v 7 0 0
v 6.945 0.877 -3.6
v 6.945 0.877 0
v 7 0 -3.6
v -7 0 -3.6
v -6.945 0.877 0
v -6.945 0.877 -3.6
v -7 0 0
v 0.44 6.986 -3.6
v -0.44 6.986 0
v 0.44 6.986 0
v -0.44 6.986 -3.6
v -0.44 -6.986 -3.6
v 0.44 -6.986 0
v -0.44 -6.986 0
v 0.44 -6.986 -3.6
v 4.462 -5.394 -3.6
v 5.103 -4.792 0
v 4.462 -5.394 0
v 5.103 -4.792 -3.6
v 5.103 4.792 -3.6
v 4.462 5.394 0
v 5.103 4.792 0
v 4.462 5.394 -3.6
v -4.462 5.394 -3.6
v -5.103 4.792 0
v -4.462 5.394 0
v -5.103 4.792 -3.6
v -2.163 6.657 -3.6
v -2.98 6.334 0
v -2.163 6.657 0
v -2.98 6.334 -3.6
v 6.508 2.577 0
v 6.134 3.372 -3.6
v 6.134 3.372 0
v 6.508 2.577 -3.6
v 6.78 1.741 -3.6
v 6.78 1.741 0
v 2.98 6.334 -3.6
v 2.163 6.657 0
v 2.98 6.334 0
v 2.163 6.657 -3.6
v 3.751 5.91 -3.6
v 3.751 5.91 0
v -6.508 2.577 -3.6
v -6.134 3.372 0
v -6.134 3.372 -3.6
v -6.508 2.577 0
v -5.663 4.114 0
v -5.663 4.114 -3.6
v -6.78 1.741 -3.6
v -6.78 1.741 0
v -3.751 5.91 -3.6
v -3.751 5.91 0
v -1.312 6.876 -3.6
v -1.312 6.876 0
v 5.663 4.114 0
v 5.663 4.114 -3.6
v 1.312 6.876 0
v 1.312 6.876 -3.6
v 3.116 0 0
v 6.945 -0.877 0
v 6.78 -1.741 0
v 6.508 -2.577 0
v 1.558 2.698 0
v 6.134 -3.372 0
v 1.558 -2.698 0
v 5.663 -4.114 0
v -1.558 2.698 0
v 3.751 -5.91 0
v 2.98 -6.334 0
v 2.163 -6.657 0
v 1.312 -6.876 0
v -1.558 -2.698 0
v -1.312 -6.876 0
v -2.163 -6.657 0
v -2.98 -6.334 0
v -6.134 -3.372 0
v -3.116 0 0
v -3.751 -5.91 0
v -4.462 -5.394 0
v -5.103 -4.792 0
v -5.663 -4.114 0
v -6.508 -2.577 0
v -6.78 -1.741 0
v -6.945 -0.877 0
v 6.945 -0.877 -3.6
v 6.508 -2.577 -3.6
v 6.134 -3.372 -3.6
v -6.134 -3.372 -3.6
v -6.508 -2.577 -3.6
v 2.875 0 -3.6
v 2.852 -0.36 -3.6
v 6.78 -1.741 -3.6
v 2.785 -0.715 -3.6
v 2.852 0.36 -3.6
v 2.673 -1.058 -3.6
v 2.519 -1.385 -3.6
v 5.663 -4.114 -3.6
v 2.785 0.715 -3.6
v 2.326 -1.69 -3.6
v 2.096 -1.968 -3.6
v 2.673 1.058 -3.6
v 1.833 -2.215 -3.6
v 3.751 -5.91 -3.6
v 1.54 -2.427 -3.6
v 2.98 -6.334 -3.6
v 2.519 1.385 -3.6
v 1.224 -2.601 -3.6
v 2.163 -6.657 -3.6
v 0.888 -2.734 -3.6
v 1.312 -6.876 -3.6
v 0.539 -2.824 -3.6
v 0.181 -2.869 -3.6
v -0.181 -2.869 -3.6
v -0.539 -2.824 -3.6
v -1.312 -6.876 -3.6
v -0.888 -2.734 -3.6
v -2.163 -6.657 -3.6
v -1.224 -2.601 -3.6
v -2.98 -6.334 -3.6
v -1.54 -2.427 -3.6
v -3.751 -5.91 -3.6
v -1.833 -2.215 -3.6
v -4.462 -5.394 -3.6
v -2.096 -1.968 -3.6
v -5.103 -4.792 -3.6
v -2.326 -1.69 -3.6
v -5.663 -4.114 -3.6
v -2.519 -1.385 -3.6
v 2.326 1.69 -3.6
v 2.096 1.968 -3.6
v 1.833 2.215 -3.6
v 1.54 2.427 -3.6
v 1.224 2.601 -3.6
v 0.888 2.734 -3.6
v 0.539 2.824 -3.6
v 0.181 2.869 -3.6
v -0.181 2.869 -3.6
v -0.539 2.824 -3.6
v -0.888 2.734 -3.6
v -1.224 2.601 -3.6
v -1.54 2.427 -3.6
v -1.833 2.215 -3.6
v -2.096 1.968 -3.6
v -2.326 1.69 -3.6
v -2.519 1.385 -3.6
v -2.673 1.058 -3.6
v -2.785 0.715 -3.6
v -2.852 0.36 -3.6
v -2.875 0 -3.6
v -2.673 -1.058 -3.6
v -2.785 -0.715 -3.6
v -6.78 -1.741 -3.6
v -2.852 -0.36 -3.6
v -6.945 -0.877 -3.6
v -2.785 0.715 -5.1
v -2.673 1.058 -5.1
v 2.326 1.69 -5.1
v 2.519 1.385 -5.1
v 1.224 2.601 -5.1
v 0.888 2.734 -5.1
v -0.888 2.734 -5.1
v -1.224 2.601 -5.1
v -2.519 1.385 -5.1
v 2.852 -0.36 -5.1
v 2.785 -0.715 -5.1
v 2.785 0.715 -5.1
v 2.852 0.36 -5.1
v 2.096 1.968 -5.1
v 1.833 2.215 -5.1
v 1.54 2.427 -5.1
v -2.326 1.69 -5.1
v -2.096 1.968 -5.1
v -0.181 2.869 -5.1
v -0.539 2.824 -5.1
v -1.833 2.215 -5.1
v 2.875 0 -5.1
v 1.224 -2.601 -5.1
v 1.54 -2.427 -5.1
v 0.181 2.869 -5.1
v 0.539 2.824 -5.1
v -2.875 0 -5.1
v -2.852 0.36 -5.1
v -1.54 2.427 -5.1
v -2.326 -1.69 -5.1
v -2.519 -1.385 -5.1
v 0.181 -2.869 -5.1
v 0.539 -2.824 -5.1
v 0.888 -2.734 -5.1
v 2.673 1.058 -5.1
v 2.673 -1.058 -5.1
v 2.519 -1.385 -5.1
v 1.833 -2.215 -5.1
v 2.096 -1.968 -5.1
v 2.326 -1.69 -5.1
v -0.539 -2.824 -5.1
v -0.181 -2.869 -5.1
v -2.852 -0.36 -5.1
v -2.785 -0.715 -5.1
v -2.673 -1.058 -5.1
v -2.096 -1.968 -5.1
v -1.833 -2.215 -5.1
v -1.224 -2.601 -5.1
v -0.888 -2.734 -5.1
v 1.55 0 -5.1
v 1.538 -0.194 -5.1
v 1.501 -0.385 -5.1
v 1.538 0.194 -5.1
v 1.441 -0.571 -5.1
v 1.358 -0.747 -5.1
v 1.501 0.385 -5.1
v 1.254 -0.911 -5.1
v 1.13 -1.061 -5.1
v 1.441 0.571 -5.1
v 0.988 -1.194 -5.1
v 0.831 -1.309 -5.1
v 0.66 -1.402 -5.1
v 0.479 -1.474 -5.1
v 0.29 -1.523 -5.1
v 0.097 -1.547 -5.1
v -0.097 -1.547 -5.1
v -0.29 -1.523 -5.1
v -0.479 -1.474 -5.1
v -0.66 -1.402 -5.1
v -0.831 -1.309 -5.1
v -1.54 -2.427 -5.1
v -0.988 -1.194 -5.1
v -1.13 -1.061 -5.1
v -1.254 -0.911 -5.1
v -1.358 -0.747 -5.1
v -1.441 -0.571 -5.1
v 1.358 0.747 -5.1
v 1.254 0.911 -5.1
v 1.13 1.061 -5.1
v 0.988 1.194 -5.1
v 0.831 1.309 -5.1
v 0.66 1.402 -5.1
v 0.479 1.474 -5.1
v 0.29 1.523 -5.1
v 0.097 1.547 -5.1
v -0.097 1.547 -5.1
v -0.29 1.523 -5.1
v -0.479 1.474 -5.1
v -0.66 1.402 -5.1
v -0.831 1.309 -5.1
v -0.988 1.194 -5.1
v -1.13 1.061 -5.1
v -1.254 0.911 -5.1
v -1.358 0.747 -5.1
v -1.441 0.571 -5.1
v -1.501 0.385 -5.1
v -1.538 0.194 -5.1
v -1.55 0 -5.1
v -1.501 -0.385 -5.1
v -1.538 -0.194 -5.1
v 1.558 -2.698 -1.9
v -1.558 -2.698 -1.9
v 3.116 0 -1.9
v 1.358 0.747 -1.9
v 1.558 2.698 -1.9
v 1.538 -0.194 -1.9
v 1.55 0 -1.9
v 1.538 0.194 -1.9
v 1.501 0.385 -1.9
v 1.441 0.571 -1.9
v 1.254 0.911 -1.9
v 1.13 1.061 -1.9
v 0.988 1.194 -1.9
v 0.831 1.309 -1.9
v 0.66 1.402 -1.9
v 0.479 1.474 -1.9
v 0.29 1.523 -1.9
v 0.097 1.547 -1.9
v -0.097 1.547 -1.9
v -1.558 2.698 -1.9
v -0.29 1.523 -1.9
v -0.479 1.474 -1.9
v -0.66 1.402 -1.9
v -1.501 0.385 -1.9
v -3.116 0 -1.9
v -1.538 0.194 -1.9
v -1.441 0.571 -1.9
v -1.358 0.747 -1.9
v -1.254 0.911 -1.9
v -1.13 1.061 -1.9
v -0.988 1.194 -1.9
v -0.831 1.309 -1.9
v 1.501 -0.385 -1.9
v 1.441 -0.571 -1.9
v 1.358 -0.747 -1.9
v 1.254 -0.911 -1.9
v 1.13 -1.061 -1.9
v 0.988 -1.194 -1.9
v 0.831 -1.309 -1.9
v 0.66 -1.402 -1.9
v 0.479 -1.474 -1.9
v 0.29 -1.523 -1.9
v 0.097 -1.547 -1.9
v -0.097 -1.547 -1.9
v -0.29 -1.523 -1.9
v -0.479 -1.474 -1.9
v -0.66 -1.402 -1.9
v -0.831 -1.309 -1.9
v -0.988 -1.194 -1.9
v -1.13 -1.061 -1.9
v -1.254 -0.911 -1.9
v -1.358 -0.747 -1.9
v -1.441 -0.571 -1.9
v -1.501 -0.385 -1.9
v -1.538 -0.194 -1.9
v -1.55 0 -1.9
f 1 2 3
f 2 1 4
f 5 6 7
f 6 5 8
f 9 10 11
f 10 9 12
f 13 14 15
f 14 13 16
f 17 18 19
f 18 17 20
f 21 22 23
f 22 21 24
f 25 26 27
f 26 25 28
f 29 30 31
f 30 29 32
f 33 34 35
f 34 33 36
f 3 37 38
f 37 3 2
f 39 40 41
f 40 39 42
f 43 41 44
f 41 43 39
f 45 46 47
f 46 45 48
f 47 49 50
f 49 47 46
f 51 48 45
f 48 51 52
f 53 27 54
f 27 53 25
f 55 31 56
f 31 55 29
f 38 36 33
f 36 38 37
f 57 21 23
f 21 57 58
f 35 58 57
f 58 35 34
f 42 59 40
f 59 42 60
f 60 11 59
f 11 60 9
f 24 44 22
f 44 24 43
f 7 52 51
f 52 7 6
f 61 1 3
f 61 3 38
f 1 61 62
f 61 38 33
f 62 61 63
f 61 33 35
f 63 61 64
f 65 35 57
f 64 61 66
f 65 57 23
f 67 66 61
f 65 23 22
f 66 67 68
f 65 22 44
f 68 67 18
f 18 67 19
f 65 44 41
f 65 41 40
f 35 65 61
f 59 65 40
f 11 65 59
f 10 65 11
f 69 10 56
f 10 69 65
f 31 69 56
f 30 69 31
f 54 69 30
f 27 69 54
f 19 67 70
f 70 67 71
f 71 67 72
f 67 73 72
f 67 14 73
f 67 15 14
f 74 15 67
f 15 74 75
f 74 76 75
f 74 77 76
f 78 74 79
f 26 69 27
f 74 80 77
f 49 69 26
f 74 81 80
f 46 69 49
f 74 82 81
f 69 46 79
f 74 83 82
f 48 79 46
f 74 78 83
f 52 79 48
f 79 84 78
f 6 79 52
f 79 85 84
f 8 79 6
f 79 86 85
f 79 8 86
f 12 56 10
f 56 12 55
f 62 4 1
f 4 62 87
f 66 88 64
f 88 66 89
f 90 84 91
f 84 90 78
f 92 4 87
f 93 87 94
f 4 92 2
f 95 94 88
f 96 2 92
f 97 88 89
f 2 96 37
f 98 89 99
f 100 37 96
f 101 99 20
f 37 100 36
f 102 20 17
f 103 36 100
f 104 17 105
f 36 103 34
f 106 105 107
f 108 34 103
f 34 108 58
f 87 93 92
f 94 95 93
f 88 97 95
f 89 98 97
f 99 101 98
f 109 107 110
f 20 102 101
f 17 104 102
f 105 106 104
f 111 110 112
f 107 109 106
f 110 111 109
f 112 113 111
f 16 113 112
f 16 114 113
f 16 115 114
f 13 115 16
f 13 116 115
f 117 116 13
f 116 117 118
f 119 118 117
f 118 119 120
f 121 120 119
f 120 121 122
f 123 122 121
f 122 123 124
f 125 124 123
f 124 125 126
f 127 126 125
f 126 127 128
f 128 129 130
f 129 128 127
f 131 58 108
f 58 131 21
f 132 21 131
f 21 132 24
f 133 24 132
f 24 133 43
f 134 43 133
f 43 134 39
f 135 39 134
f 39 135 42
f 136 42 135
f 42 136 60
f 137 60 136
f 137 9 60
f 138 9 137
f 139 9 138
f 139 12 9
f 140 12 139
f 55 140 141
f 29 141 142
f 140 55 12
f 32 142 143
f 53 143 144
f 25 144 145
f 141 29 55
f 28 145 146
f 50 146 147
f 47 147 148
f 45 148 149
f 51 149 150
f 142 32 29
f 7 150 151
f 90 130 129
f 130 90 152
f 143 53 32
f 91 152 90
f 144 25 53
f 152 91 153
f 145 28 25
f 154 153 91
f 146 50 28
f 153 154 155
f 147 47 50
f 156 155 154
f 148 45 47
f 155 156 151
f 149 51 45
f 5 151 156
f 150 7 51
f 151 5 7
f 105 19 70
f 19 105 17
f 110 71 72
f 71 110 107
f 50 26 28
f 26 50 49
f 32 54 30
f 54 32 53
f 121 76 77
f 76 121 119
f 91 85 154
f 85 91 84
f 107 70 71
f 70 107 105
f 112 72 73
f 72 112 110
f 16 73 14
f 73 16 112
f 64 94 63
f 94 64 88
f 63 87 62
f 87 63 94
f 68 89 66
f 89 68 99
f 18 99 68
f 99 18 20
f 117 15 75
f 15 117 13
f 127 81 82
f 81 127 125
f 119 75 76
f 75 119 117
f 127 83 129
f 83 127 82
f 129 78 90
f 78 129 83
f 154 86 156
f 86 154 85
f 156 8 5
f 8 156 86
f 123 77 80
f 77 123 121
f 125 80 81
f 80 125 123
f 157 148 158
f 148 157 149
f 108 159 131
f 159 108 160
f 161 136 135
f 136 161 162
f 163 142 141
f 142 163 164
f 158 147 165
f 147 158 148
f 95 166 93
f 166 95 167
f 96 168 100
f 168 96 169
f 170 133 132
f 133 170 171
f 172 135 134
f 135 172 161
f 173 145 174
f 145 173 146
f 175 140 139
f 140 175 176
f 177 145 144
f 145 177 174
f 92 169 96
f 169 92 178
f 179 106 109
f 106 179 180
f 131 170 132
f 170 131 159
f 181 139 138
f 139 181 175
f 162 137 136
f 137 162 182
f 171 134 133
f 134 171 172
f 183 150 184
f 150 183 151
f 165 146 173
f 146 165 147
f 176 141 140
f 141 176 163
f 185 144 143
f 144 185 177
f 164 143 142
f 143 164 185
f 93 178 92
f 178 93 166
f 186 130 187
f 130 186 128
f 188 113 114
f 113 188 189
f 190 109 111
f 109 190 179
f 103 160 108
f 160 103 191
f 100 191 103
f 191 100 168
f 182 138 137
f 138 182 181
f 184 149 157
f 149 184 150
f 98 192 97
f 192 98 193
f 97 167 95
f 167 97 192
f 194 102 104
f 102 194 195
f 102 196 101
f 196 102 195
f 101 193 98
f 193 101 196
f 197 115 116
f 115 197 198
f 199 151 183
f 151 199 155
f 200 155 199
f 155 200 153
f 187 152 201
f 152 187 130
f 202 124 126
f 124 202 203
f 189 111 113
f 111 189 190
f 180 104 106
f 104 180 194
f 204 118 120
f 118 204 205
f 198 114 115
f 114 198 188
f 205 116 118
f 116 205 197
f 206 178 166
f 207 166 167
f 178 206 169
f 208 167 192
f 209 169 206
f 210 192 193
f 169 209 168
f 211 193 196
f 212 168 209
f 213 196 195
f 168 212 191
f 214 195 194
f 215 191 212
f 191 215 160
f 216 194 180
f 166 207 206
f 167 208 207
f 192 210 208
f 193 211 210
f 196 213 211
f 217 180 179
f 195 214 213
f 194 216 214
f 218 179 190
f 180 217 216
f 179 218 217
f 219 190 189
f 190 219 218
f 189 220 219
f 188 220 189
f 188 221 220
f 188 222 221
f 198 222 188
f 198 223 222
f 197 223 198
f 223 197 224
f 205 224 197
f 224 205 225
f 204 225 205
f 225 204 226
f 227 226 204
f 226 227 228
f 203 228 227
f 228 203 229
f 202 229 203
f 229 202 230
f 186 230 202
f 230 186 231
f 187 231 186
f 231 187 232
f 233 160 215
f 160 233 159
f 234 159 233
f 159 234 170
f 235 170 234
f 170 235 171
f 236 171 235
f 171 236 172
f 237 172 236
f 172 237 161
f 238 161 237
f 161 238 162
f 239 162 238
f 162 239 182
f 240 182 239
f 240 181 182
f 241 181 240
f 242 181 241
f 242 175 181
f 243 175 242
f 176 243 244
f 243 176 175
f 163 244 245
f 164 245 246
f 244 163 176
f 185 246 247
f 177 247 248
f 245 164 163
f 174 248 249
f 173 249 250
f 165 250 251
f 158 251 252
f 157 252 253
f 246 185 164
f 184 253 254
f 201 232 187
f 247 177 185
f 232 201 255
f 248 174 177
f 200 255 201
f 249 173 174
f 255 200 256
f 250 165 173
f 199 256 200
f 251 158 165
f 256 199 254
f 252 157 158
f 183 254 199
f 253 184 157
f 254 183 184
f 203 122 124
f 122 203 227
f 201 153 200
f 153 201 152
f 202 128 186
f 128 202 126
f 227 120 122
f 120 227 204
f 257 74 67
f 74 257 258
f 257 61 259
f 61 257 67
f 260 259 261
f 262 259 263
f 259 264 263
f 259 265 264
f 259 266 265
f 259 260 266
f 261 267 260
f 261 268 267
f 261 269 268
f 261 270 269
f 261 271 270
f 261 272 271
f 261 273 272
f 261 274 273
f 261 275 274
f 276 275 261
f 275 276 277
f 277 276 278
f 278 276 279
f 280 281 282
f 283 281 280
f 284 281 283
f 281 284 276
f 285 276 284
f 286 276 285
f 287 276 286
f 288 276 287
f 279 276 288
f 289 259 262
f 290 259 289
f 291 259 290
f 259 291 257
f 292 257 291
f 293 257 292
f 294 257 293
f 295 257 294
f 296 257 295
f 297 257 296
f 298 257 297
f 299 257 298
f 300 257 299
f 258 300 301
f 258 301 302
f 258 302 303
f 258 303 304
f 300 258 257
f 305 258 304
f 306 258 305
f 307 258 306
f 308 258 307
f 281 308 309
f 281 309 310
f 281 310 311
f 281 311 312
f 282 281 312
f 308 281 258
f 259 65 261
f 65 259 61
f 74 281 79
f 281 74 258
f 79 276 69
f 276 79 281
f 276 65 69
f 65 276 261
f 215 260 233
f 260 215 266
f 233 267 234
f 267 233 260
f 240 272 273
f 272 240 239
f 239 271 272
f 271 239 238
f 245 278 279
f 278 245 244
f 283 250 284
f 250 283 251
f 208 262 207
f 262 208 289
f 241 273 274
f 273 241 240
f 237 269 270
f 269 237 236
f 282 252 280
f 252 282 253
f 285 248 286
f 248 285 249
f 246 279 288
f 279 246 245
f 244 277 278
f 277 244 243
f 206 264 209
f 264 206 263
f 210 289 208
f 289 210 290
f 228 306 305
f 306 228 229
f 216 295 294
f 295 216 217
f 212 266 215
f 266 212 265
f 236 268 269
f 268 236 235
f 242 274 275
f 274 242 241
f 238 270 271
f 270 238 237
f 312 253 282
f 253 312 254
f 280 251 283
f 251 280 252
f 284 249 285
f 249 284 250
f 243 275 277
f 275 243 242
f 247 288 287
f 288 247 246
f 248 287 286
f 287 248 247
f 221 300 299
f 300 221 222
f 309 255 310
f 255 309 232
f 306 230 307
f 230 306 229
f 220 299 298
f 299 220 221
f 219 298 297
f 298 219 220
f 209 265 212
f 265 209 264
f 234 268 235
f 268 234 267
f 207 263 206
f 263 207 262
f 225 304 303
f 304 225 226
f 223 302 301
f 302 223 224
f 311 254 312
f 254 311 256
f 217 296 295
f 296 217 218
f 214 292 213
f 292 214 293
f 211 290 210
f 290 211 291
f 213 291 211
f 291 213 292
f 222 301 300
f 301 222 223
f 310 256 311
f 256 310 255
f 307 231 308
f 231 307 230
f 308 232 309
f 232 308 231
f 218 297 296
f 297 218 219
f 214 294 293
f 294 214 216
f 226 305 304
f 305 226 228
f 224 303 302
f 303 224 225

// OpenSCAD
$fn = 50;


difference() {
	union() {
		translate(v = [0, 0, -3.6000000000]) {
			cylinder(h = 3.6000000000, r = 7.0000000000);
		}
		translate(v = [0, 0, -5.1000000000]) {
			cylinder(h = 5.1000000000, r = 2.8750000000);
		}
	}
	union() {
		translate(v = [0, 0, 0]) {
			rotate(a = [0, 0, 0]) {
				difference() {
					union() {
						translate(v = [0, 0, -1.9000000000]) {
							linear_extrude(height = 1.9000000000) {
								polygon(points = [[3.1158000000, 0.0000000000], [1.5579000000, 2.6983619531], [-1.5579000000, 2.6983619531], [-3.1158000000, 0.0000000000], [-1.5579000000, -2.6983619531], [1.5579000000, -2.6983619531]]);
							}
						}
					}
					union();
				}
			}
		}
		#translate(v = [0, 0, -100.0000000000]) {
			cylinder(h = 200, r = 1.5500000000);
		}
	}
}
